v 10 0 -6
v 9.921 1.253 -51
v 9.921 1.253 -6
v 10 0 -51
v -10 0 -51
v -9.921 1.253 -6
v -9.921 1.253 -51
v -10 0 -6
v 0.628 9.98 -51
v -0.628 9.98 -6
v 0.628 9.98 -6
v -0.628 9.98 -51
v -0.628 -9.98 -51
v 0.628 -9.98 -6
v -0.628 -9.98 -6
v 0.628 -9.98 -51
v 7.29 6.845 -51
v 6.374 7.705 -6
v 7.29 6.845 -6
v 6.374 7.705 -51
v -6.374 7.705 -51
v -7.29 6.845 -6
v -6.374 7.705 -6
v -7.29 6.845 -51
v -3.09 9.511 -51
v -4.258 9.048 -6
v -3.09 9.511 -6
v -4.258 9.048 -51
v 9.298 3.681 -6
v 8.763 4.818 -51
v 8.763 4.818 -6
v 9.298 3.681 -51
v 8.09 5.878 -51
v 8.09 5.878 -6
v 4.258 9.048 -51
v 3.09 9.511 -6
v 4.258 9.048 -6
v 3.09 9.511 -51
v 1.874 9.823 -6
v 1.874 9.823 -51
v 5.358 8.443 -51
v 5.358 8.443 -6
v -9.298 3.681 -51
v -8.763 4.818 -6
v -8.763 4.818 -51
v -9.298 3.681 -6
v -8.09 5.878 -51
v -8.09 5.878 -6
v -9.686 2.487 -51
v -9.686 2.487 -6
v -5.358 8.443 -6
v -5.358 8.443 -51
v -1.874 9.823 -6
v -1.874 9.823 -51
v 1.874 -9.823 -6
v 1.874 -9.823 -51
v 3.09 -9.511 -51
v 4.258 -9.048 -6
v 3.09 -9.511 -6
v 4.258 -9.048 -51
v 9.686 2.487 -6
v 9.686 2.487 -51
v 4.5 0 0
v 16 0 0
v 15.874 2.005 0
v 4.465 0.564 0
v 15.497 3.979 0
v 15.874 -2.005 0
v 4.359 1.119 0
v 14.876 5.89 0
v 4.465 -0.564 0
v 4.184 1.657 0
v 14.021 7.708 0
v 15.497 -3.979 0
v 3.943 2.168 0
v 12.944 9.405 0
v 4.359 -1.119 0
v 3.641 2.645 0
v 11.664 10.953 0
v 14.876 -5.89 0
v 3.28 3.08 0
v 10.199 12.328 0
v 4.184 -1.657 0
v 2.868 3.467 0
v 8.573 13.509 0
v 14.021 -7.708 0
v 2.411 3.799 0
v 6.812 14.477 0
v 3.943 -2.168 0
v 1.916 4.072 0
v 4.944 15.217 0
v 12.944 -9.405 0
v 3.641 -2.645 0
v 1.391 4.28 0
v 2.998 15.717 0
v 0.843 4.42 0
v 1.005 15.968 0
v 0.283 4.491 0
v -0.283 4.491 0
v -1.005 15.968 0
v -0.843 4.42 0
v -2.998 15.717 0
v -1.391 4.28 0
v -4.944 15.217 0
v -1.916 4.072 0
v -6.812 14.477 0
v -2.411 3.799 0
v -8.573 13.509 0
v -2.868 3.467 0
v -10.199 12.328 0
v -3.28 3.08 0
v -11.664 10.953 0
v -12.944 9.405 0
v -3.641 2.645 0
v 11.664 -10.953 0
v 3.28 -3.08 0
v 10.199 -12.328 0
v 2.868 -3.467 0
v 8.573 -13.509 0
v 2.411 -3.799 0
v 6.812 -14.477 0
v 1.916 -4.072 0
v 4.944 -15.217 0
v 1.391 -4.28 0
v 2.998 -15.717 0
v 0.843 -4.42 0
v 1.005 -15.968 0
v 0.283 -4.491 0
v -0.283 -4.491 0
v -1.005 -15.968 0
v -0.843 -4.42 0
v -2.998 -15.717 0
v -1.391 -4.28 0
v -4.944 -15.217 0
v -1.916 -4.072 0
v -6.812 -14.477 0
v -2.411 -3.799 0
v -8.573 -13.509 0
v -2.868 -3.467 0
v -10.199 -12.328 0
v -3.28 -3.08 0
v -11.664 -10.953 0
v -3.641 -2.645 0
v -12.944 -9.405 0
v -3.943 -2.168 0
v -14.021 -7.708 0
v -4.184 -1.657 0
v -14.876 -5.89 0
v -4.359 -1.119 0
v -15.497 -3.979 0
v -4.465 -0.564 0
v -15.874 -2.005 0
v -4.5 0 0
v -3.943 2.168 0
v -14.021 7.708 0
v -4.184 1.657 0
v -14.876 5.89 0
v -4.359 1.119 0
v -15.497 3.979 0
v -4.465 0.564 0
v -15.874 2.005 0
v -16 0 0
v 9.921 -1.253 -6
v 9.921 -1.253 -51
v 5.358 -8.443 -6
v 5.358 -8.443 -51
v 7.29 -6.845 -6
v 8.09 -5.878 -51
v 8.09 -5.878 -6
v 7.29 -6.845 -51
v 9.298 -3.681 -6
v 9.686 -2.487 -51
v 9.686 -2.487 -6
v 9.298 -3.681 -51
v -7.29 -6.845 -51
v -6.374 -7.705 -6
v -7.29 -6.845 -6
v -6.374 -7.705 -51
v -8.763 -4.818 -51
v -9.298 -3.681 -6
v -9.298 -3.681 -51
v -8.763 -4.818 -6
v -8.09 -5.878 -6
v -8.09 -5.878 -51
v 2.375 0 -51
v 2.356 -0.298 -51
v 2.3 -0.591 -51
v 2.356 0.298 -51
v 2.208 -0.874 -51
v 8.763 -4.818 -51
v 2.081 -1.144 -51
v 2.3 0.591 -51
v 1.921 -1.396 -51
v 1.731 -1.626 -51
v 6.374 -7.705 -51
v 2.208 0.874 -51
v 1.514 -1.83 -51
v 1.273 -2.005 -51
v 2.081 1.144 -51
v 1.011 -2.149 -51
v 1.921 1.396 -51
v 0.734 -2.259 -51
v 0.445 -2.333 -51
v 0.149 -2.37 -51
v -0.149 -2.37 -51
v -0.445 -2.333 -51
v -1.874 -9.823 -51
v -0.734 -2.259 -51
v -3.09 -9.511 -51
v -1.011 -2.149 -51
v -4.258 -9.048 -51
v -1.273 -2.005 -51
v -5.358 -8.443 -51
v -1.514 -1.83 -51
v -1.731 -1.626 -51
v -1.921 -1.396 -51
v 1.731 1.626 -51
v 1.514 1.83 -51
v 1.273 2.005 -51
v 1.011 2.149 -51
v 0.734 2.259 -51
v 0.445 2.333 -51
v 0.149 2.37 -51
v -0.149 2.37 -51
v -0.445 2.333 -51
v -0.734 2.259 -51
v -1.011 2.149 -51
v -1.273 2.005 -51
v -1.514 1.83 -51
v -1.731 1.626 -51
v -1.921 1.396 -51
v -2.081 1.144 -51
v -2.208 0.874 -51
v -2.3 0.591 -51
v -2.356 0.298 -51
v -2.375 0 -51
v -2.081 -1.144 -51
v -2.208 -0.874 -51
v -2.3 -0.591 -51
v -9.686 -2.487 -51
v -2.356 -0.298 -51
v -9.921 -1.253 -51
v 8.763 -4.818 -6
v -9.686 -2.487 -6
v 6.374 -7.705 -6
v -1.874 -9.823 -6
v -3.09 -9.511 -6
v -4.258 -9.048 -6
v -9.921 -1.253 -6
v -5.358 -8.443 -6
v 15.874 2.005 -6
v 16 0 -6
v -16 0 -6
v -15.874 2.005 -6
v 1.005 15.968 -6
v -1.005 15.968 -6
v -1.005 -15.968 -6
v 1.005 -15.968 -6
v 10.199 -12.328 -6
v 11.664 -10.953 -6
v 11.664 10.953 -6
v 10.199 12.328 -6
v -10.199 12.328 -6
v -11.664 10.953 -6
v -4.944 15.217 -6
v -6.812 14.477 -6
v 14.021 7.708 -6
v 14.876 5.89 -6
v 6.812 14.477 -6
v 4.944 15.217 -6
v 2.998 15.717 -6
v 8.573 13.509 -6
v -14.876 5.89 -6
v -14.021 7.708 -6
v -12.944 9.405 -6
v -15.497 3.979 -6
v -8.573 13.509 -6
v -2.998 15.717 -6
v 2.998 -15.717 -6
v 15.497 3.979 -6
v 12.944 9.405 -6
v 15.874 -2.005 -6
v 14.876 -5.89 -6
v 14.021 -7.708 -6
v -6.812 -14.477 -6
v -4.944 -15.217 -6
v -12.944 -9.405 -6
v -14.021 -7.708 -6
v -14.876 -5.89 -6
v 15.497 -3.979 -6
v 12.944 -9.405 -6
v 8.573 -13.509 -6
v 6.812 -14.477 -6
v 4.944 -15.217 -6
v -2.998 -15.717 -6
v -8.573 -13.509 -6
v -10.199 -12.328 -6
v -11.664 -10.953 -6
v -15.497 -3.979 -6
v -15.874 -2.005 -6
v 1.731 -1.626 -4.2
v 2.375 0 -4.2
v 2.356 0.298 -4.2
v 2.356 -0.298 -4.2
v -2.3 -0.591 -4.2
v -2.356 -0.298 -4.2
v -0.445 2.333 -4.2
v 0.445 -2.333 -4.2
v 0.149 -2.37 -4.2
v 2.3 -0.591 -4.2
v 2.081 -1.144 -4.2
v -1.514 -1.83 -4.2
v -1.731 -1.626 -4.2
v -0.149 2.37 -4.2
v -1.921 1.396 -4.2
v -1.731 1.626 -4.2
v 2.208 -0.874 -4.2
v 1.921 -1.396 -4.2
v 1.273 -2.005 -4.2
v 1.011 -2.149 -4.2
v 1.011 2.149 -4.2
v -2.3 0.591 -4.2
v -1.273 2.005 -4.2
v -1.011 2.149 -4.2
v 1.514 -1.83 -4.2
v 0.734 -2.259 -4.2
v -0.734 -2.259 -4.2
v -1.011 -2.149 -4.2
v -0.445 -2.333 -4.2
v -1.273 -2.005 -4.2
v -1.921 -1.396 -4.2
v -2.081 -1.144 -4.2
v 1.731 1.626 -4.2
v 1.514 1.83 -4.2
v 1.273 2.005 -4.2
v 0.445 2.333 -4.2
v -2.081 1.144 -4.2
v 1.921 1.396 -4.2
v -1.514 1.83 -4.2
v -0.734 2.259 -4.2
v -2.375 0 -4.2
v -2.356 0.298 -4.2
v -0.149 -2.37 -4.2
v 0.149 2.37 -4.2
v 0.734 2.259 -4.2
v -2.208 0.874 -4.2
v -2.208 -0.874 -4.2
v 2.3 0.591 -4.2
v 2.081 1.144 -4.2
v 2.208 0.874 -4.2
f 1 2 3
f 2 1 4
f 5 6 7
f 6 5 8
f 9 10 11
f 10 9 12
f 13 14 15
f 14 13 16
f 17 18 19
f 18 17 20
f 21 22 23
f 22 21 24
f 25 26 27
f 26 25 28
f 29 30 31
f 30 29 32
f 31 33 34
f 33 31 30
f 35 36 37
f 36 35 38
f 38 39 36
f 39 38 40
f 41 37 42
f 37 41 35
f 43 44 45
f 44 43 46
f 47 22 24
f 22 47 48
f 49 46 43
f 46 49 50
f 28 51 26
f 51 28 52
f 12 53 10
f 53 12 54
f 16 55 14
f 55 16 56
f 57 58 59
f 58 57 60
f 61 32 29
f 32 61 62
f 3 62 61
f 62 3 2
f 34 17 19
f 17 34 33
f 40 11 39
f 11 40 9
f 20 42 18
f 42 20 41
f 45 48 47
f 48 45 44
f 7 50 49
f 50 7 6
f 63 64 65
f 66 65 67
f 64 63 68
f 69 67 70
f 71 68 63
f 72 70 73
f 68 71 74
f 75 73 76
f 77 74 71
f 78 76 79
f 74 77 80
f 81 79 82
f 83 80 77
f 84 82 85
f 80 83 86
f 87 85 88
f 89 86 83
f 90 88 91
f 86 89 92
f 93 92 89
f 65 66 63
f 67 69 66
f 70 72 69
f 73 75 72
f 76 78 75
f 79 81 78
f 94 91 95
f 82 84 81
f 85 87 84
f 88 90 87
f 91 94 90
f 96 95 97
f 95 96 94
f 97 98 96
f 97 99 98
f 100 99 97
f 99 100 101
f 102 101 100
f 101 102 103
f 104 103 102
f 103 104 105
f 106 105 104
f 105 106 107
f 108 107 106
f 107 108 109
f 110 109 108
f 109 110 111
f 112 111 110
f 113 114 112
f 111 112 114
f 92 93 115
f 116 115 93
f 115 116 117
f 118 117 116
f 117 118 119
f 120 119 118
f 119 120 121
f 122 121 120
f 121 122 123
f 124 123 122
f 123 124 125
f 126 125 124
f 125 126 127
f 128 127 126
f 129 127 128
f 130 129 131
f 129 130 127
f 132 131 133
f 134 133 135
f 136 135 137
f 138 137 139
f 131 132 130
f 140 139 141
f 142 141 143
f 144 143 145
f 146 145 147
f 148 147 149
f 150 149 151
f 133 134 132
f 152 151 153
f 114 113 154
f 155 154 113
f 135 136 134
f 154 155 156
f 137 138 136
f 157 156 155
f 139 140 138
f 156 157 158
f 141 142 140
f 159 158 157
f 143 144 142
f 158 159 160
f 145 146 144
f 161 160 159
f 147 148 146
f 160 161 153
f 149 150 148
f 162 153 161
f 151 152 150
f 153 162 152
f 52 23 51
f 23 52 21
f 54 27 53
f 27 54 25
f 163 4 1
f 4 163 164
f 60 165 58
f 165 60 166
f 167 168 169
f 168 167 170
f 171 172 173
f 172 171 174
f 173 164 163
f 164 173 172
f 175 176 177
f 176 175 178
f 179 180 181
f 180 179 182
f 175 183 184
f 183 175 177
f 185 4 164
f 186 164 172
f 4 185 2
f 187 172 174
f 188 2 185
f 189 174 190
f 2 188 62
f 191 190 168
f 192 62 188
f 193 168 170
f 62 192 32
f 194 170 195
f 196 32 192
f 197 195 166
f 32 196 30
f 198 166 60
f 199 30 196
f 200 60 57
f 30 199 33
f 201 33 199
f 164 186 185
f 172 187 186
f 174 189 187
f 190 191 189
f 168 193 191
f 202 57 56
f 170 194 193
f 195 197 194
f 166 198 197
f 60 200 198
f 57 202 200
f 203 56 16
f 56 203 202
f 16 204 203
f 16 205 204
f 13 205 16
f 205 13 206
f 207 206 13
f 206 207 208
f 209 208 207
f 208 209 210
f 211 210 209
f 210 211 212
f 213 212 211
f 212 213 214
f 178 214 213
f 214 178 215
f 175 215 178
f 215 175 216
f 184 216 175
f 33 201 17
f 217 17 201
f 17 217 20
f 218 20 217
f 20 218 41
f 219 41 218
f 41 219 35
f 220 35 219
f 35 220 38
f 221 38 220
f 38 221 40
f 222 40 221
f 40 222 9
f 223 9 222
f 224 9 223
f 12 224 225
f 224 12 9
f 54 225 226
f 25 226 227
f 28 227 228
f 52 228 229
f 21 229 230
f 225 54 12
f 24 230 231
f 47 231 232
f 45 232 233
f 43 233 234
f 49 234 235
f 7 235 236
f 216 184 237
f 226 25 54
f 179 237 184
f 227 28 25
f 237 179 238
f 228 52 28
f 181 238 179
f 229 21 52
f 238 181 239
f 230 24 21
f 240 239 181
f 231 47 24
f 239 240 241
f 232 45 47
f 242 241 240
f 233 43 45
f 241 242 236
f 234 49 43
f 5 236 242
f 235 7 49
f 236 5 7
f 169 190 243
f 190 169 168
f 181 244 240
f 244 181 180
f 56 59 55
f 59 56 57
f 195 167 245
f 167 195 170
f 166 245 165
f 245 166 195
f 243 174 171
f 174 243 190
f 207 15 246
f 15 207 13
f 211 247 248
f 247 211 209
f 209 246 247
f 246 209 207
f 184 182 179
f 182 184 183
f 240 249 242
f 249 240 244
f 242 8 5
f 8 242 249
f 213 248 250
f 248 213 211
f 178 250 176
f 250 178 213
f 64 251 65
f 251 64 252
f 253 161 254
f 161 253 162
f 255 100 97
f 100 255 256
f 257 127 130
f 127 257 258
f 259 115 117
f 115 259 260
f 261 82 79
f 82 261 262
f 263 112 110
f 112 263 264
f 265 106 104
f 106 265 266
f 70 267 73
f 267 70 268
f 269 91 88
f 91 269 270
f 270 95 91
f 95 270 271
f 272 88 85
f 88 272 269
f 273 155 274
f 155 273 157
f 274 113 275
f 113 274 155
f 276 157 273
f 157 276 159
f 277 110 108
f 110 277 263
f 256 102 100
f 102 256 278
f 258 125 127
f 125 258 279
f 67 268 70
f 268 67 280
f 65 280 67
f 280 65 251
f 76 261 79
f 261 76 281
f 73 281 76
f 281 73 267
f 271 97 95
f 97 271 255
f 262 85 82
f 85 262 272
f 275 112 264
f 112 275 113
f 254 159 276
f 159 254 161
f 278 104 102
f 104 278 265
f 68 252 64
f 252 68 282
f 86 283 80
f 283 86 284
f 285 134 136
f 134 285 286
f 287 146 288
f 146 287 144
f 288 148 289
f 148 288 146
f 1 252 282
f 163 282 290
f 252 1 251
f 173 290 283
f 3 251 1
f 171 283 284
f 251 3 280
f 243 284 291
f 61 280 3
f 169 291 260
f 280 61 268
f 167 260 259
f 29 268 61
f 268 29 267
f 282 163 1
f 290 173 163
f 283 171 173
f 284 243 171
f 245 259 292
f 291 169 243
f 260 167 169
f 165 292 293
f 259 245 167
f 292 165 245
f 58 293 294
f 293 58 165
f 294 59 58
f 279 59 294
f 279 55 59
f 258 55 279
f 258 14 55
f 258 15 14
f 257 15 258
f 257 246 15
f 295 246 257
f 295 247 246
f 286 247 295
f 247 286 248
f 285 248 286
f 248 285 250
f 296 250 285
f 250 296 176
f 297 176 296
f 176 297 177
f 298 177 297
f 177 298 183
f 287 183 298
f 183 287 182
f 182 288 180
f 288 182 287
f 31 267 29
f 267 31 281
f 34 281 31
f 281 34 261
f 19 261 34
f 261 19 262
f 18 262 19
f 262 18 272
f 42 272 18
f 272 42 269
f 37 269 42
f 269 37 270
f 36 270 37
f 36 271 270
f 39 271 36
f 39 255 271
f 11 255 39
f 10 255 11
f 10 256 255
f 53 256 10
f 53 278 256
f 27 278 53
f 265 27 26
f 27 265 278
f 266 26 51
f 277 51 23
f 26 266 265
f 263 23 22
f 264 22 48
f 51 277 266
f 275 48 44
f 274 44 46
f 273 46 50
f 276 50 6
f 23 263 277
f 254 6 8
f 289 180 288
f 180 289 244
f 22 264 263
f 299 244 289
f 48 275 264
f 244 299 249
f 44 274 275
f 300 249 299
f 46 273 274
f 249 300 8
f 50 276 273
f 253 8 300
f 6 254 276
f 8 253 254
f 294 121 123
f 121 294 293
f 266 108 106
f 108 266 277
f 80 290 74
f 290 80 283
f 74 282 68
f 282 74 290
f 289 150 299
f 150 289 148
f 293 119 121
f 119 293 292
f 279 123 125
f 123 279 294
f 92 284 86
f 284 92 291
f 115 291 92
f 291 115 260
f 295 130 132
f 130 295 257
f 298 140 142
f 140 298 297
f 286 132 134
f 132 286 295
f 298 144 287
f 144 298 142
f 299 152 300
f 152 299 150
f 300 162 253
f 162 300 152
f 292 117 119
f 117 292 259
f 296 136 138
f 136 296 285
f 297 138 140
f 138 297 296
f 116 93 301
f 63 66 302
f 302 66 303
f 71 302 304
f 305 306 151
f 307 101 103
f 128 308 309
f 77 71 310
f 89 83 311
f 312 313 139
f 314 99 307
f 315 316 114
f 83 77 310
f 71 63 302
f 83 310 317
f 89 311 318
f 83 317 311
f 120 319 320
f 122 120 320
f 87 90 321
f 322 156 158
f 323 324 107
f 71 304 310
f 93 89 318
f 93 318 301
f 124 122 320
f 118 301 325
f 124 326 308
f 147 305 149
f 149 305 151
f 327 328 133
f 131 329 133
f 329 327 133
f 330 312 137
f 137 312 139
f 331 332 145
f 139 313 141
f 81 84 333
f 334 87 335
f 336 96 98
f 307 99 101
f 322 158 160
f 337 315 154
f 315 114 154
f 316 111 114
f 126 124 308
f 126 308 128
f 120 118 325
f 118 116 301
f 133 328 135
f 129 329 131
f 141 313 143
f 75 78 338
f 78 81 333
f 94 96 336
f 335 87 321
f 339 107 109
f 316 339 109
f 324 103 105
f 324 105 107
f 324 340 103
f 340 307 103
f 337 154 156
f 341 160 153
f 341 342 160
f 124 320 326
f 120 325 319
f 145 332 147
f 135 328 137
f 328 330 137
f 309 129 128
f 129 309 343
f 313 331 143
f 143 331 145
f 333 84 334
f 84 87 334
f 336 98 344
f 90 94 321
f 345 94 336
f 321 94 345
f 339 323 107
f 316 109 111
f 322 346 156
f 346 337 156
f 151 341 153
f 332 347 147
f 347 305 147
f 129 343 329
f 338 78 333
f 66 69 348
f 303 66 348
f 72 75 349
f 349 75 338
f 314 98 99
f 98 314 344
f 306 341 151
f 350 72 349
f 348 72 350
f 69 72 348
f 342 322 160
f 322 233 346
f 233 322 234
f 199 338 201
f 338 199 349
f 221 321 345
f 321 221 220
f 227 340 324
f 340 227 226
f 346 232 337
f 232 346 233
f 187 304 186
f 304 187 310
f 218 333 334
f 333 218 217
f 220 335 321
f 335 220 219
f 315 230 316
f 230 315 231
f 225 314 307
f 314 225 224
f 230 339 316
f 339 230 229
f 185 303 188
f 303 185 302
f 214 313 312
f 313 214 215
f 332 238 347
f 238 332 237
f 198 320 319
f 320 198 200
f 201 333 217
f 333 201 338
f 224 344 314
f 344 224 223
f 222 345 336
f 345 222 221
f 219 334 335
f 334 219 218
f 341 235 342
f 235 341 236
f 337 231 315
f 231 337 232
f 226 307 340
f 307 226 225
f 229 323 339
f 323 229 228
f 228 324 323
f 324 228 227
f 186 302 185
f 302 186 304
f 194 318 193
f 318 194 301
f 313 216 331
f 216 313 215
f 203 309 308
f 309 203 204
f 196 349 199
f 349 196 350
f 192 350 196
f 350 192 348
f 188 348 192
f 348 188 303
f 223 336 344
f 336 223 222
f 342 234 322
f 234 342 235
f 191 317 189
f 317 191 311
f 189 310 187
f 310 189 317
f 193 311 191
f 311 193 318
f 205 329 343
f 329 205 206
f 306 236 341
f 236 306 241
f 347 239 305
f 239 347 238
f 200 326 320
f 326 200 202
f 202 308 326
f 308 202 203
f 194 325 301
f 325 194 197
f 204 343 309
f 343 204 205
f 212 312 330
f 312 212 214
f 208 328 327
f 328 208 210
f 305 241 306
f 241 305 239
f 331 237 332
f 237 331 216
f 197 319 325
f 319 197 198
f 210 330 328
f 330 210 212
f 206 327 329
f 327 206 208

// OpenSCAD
$fn = 50;


difference() {
	union() {
		translate(v = [0, 0, -51.0000000000]) {
			cylinder(h = 51, r = 10.0000000000);
		}
		translate(v = [0, 0, -6.0000000000]) {
			cylinder(h = 6, r = 16.0000000000);
		}
	}
	union() {
		translate(v = [0, 0, 0]) {
			rotate(a = [0, 0, 0]) {
				difference() {
					union() {
						#translate(v = [0, 0, -51.0000000000]) {
							cylinder(h = 51, r = 2.2500000000);
						}
						#translate(v = [0, 0, -4.2000000000]) {
							cylinder(h = 4.2000000000, r1 = 2.3750000000, r2 = 4.5000000000);
						}
						#translate(v = [0, 0, -51.0000000000]) {
							cylinder(h = 51, r = 2.3750000000);
						}
						#translate(v = [0, 0, -51.0000000000]) {
							cylinder(h = 51, r = 2.2500000000);
						}
					}
					union();
				}
			}
		}
	}
}
